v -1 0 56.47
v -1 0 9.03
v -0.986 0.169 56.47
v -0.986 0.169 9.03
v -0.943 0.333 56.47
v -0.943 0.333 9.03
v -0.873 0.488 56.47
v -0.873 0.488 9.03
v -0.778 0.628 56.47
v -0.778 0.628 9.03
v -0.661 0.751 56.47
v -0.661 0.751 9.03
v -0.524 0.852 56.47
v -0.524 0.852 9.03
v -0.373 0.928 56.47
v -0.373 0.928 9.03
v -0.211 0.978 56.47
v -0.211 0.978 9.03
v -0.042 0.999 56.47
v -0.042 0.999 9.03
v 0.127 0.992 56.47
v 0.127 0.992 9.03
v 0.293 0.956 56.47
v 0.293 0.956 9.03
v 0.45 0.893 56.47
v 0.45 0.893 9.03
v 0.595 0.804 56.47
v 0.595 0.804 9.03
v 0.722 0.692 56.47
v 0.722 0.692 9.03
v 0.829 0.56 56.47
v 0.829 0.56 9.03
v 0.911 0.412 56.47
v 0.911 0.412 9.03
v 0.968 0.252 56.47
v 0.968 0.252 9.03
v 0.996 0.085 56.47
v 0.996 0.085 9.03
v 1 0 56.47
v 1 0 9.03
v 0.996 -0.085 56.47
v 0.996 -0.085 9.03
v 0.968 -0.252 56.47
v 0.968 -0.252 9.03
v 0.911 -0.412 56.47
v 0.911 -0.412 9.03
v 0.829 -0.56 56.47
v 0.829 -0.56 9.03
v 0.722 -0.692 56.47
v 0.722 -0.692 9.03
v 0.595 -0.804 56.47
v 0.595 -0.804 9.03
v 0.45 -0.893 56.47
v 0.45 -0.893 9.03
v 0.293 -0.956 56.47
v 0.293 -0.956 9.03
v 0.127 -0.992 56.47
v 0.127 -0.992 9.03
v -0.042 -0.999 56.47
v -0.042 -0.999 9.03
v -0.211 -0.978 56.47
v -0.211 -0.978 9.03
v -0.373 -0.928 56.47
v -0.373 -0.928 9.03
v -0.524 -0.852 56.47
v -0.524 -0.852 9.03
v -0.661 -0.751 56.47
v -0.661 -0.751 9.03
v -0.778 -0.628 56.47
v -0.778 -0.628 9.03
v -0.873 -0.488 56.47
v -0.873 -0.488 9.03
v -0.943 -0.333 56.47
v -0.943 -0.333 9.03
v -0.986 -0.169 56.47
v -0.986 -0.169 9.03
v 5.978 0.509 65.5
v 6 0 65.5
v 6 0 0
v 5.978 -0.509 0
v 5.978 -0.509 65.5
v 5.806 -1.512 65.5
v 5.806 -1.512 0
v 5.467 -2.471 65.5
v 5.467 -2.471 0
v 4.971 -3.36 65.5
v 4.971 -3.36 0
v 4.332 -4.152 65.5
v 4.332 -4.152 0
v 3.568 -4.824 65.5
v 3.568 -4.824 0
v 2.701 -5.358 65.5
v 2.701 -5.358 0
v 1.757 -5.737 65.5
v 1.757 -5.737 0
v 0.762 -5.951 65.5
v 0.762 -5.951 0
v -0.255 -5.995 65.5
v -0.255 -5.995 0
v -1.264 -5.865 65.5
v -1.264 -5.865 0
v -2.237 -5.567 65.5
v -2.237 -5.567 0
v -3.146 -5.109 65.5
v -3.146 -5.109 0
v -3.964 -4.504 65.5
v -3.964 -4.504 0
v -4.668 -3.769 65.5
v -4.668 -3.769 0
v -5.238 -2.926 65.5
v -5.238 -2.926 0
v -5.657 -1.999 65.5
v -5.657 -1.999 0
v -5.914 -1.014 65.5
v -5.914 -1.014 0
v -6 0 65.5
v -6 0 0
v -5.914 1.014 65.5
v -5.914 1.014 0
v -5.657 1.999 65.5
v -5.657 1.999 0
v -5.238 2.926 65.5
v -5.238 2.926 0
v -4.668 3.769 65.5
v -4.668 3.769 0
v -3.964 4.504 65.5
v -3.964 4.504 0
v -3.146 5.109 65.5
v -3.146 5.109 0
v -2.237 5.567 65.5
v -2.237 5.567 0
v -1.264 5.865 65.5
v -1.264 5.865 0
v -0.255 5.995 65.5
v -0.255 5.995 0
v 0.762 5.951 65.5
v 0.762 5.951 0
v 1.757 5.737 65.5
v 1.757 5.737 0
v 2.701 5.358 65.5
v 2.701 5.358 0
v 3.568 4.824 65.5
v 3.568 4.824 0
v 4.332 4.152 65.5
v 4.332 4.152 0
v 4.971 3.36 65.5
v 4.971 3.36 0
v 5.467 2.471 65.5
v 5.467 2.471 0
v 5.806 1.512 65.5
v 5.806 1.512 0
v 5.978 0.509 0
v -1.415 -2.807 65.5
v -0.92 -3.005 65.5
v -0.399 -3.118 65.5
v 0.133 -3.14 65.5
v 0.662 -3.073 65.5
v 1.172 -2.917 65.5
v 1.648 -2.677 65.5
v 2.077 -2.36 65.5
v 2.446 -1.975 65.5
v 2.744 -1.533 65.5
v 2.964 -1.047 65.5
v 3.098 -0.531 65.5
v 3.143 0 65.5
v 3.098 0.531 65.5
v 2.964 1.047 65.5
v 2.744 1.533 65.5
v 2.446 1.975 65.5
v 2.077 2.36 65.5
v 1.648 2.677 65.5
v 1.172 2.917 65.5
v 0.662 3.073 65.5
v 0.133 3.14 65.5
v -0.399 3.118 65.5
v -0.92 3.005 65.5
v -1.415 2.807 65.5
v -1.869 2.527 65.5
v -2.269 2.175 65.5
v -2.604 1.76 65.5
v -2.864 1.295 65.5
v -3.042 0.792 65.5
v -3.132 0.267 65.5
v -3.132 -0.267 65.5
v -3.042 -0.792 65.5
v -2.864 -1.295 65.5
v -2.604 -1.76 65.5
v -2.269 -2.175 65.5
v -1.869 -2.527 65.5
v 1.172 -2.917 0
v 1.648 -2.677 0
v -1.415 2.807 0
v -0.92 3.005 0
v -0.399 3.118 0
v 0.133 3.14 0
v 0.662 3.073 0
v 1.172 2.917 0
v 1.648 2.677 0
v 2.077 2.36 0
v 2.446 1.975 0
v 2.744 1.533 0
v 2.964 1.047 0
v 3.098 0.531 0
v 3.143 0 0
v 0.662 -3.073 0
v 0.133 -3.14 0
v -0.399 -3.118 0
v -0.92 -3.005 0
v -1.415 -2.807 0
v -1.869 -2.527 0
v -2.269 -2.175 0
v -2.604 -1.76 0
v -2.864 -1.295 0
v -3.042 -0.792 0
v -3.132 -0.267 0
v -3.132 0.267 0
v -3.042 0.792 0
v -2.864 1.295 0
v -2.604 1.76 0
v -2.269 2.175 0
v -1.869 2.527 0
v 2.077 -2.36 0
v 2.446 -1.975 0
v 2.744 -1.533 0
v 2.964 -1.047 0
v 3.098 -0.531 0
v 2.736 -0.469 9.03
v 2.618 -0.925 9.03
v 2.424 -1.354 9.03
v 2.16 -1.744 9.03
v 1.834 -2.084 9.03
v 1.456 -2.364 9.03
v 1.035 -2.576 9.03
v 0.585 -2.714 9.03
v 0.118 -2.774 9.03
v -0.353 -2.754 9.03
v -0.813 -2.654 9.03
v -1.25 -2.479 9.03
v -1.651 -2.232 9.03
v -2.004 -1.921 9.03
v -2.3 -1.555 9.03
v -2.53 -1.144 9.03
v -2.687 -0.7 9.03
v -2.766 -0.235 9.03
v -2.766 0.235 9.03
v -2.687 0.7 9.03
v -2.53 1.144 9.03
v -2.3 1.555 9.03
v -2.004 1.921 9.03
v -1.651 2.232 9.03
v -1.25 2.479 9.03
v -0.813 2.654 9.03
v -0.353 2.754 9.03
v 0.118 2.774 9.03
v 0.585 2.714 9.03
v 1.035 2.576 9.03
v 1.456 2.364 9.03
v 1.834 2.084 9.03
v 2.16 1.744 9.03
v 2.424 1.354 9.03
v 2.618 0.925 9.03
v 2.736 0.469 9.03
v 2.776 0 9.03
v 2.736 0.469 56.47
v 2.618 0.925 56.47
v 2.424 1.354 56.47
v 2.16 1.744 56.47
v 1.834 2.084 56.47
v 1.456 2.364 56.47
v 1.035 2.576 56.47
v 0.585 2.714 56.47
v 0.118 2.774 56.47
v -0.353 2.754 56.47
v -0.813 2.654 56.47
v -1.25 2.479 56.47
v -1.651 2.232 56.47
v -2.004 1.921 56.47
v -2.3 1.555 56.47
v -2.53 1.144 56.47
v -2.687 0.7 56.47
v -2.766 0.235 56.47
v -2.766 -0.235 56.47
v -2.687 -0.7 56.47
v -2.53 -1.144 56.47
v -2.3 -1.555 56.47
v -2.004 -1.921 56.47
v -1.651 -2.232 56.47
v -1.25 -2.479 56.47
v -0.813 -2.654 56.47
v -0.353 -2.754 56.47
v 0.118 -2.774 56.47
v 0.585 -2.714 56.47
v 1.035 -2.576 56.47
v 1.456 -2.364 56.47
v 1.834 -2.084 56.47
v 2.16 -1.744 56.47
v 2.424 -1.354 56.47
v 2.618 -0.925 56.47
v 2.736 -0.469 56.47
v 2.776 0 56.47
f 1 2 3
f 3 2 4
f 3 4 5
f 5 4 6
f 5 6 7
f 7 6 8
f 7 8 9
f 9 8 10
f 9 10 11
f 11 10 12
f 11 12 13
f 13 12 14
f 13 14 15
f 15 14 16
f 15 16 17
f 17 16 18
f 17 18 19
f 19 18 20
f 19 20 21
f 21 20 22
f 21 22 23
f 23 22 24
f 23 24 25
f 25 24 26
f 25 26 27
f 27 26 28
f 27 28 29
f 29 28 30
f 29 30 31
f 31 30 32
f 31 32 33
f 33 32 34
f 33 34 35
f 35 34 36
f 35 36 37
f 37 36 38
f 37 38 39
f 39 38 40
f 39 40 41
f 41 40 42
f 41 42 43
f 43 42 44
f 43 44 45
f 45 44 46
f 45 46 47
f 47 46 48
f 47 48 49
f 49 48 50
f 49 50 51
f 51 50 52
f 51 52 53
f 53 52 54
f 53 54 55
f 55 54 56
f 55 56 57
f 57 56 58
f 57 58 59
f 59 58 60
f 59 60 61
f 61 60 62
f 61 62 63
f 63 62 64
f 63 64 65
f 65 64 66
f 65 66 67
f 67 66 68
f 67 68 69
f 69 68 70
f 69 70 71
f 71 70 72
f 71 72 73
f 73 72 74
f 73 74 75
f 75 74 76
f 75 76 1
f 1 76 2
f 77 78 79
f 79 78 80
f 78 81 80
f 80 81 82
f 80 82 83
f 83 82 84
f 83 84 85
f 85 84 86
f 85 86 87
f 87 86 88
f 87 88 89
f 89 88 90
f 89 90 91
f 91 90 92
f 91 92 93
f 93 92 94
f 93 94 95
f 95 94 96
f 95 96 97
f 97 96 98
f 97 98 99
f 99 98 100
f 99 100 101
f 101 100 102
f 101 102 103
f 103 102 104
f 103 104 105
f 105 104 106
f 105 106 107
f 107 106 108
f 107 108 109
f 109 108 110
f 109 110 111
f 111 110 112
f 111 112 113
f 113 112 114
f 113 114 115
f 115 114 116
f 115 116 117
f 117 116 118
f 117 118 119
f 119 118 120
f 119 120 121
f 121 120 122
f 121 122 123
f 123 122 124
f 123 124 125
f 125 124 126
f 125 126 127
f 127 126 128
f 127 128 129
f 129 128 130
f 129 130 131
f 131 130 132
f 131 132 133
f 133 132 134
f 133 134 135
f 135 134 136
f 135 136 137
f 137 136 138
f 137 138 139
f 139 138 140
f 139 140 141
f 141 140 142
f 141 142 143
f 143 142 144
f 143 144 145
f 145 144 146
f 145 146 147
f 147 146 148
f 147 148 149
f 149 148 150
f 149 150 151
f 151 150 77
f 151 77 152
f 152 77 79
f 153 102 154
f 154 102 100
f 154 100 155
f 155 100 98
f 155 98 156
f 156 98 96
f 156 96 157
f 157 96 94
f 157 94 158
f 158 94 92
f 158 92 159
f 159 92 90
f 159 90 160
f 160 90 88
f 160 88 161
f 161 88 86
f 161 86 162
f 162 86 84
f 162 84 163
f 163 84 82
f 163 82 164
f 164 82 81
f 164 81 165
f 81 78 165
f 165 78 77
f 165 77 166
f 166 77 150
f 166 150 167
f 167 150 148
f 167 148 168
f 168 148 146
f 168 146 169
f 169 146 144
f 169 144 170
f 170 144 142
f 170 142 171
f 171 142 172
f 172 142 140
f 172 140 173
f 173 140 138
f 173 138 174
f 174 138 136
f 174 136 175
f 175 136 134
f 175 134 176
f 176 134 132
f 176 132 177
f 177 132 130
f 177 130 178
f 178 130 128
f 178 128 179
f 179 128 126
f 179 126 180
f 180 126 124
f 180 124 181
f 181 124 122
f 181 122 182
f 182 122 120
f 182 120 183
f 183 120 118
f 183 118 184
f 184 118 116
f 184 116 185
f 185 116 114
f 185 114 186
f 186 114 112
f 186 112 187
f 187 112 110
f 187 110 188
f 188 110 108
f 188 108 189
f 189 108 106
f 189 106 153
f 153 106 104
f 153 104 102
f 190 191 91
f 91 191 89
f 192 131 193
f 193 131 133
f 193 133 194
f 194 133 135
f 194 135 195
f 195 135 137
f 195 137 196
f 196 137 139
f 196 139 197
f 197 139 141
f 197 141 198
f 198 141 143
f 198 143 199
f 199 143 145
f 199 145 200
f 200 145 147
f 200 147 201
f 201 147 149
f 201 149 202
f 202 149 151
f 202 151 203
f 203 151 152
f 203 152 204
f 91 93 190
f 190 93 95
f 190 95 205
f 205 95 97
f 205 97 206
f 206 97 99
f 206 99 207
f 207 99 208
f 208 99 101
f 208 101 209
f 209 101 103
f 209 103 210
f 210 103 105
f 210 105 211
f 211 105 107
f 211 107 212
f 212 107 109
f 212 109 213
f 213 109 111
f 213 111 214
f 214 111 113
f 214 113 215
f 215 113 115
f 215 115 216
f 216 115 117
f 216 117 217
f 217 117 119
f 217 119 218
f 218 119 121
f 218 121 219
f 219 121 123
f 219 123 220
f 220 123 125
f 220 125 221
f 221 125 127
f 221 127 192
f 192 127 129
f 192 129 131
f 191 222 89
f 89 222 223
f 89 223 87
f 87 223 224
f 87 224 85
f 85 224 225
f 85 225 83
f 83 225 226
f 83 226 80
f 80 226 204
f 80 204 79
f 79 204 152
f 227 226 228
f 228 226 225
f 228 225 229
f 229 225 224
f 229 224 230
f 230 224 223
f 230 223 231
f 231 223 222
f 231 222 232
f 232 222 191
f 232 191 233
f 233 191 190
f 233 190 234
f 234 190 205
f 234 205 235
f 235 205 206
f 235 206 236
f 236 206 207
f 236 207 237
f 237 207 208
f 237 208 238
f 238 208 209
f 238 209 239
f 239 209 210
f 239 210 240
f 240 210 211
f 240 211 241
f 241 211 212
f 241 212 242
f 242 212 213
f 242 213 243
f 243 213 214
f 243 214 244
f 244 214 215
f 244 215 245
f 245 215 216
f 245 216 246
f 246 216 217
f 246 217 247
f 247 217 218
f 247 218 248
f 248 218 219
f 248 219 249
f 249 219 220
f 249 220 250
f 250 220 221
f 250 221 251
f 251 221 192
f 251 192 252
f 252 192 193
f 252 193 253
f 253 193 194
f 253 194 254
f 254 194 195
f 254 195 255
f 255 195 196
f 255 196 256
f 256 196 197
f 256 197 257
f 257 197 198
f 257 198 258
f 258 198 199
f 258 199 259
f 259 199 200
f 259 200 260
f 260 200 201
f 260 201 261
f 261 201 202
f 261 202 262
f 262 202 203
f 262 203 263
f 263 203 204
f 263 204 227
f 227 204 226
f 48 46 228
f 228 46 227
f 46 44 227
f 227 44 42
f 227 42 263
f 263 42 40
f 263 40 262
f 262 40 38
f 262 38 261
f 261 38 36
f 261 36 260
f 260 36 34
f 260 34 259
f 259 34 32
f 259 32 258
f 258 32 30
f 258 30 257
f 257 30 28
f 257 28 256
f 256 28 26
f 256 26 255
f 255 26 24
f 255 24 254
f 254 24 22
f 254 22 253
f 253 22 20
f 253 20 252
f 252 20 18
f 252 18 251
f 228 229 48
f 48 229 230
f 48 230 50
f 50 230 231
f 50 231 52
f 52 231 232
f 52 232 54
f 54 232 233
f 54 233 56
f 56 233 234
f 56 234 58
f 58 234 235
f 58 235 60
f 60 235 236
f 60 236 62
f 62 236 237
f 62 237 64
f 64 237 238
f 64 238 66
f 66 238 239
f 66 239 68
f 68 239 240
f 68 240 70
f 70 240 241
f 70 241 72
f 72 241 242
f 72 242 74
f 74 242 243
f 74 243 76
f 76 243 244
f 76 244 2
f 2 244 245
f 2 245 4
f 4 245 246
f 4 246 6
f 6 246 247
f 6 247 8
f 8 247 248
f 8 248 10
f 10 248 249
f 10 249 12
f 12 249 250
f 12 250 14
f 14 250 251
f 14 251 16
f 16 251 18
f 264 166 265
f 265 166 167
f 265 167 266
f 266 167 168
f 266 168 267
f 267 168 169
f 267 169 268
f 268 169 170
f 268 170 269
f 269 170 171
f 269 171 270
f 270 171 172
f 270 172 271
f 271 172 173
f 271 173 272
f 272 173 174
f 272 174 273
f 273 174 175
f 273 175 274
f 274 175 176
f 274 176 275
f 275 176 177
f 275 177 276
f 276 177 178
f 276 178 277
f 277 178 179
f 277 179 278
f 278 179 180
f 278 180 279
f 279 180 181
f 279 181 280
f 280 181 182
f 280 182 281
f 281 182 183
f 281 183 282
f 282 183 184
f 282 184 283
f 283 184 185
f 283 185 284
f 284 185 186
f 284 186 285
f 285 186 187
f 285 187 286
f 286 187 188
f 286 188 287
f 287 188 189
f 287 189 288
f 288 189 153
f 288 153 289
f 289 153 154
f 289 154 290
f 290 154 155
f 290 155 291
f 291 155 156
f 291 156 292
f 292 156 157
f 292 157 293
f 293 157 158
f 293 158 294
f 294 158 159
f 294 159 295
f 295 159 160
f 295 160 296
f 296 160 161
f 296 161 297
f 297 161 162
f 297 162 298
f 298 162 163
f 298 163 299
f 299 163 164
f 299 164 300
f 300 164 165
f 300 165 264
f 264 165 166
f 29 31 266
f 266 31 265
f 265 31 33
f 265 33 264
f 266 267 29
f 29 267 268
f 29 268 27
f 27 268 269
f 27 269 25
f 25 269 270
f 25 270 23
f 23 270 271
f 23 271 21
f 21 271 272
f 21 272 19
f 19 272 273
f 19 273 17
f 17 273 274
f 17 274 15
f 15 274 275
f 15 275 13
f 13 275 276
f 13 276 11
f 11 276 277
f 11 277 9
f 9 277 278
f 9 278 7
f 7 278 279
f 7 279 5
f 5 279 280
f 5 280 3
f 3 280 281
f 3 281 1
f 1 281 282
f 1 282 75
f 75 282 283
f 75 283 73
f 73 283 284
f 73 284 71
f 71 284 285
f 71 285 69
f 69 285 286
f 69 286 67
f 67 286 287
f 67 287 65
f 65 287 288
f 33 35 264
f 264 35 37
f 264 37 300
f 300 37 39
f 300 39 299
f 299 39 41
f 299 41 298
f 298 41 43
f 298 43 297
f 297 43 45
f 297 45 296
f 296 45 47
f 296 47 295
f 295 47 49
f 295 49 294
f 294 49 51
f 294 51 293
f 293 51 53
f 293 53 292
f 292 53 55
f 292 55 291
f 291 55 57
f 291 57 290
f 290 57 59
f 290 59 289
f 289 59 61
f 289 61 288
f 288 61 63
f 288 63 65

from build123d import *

# Parameters (mm, degrees)
SKETCH1_R           = 6
BOSS_EXTRUDE1_DEPTH = 65.5
SKETCH2_R           = 1
CUT_EXTRUDE1_DEPTH  = 66.5
SKETCH3_R           = 3.14325
CUT_EXTRUDE2_DEPTH  = 9.0297
CUT_EXTRUDE2_TAPER  = 2.328
SKETCH4_R           = 3.14325
CUT_EXTRUDE3_DEPTH  = 9.0297
CUT_EXTRUDE3_TAPER  = 2.328


with BuildPart() as part:
    # Sketch1 → Boss-Extrude1 (new body)
    with BuildSketch(Plane.XY):
        Circle(SKETCH1_R)
    extrude(amount=BOSS_EXTRUDE1_DEPTH)

    # Sketch2 → Cut-Extrude1 (cut, through all)
    with BuildSketch(Plane.XY):
        Circle(SKETCH2_R)
    extrude(amount=CUT_EXTRUDE1_DEPTH, mode=Mode.SUBTRACT)

    # Sketch3 → Cut-Extrude2 (cut)
    with BuildSketch(Plane.XY):
        Circle(SKETCH3_R)
    extrude(amount=CUT_EXTRUDE2_DEPTH, taper=CUT_EXTRUDE2_TAPER, mode=Mode.SUBTRACT)

    # Sketch4 → Cut-Extrude3 (cut)
    with BuildSketch(Plane.XY.offset(65.5)):
        Circle(SKETCH4_R)
    extrude(amount=-CUT_EXTRUDE3_DEPTH, taper=CUT_EXTRUDE3_TAPER, mode=Mode.SUBTRACT)


solid = part.part
